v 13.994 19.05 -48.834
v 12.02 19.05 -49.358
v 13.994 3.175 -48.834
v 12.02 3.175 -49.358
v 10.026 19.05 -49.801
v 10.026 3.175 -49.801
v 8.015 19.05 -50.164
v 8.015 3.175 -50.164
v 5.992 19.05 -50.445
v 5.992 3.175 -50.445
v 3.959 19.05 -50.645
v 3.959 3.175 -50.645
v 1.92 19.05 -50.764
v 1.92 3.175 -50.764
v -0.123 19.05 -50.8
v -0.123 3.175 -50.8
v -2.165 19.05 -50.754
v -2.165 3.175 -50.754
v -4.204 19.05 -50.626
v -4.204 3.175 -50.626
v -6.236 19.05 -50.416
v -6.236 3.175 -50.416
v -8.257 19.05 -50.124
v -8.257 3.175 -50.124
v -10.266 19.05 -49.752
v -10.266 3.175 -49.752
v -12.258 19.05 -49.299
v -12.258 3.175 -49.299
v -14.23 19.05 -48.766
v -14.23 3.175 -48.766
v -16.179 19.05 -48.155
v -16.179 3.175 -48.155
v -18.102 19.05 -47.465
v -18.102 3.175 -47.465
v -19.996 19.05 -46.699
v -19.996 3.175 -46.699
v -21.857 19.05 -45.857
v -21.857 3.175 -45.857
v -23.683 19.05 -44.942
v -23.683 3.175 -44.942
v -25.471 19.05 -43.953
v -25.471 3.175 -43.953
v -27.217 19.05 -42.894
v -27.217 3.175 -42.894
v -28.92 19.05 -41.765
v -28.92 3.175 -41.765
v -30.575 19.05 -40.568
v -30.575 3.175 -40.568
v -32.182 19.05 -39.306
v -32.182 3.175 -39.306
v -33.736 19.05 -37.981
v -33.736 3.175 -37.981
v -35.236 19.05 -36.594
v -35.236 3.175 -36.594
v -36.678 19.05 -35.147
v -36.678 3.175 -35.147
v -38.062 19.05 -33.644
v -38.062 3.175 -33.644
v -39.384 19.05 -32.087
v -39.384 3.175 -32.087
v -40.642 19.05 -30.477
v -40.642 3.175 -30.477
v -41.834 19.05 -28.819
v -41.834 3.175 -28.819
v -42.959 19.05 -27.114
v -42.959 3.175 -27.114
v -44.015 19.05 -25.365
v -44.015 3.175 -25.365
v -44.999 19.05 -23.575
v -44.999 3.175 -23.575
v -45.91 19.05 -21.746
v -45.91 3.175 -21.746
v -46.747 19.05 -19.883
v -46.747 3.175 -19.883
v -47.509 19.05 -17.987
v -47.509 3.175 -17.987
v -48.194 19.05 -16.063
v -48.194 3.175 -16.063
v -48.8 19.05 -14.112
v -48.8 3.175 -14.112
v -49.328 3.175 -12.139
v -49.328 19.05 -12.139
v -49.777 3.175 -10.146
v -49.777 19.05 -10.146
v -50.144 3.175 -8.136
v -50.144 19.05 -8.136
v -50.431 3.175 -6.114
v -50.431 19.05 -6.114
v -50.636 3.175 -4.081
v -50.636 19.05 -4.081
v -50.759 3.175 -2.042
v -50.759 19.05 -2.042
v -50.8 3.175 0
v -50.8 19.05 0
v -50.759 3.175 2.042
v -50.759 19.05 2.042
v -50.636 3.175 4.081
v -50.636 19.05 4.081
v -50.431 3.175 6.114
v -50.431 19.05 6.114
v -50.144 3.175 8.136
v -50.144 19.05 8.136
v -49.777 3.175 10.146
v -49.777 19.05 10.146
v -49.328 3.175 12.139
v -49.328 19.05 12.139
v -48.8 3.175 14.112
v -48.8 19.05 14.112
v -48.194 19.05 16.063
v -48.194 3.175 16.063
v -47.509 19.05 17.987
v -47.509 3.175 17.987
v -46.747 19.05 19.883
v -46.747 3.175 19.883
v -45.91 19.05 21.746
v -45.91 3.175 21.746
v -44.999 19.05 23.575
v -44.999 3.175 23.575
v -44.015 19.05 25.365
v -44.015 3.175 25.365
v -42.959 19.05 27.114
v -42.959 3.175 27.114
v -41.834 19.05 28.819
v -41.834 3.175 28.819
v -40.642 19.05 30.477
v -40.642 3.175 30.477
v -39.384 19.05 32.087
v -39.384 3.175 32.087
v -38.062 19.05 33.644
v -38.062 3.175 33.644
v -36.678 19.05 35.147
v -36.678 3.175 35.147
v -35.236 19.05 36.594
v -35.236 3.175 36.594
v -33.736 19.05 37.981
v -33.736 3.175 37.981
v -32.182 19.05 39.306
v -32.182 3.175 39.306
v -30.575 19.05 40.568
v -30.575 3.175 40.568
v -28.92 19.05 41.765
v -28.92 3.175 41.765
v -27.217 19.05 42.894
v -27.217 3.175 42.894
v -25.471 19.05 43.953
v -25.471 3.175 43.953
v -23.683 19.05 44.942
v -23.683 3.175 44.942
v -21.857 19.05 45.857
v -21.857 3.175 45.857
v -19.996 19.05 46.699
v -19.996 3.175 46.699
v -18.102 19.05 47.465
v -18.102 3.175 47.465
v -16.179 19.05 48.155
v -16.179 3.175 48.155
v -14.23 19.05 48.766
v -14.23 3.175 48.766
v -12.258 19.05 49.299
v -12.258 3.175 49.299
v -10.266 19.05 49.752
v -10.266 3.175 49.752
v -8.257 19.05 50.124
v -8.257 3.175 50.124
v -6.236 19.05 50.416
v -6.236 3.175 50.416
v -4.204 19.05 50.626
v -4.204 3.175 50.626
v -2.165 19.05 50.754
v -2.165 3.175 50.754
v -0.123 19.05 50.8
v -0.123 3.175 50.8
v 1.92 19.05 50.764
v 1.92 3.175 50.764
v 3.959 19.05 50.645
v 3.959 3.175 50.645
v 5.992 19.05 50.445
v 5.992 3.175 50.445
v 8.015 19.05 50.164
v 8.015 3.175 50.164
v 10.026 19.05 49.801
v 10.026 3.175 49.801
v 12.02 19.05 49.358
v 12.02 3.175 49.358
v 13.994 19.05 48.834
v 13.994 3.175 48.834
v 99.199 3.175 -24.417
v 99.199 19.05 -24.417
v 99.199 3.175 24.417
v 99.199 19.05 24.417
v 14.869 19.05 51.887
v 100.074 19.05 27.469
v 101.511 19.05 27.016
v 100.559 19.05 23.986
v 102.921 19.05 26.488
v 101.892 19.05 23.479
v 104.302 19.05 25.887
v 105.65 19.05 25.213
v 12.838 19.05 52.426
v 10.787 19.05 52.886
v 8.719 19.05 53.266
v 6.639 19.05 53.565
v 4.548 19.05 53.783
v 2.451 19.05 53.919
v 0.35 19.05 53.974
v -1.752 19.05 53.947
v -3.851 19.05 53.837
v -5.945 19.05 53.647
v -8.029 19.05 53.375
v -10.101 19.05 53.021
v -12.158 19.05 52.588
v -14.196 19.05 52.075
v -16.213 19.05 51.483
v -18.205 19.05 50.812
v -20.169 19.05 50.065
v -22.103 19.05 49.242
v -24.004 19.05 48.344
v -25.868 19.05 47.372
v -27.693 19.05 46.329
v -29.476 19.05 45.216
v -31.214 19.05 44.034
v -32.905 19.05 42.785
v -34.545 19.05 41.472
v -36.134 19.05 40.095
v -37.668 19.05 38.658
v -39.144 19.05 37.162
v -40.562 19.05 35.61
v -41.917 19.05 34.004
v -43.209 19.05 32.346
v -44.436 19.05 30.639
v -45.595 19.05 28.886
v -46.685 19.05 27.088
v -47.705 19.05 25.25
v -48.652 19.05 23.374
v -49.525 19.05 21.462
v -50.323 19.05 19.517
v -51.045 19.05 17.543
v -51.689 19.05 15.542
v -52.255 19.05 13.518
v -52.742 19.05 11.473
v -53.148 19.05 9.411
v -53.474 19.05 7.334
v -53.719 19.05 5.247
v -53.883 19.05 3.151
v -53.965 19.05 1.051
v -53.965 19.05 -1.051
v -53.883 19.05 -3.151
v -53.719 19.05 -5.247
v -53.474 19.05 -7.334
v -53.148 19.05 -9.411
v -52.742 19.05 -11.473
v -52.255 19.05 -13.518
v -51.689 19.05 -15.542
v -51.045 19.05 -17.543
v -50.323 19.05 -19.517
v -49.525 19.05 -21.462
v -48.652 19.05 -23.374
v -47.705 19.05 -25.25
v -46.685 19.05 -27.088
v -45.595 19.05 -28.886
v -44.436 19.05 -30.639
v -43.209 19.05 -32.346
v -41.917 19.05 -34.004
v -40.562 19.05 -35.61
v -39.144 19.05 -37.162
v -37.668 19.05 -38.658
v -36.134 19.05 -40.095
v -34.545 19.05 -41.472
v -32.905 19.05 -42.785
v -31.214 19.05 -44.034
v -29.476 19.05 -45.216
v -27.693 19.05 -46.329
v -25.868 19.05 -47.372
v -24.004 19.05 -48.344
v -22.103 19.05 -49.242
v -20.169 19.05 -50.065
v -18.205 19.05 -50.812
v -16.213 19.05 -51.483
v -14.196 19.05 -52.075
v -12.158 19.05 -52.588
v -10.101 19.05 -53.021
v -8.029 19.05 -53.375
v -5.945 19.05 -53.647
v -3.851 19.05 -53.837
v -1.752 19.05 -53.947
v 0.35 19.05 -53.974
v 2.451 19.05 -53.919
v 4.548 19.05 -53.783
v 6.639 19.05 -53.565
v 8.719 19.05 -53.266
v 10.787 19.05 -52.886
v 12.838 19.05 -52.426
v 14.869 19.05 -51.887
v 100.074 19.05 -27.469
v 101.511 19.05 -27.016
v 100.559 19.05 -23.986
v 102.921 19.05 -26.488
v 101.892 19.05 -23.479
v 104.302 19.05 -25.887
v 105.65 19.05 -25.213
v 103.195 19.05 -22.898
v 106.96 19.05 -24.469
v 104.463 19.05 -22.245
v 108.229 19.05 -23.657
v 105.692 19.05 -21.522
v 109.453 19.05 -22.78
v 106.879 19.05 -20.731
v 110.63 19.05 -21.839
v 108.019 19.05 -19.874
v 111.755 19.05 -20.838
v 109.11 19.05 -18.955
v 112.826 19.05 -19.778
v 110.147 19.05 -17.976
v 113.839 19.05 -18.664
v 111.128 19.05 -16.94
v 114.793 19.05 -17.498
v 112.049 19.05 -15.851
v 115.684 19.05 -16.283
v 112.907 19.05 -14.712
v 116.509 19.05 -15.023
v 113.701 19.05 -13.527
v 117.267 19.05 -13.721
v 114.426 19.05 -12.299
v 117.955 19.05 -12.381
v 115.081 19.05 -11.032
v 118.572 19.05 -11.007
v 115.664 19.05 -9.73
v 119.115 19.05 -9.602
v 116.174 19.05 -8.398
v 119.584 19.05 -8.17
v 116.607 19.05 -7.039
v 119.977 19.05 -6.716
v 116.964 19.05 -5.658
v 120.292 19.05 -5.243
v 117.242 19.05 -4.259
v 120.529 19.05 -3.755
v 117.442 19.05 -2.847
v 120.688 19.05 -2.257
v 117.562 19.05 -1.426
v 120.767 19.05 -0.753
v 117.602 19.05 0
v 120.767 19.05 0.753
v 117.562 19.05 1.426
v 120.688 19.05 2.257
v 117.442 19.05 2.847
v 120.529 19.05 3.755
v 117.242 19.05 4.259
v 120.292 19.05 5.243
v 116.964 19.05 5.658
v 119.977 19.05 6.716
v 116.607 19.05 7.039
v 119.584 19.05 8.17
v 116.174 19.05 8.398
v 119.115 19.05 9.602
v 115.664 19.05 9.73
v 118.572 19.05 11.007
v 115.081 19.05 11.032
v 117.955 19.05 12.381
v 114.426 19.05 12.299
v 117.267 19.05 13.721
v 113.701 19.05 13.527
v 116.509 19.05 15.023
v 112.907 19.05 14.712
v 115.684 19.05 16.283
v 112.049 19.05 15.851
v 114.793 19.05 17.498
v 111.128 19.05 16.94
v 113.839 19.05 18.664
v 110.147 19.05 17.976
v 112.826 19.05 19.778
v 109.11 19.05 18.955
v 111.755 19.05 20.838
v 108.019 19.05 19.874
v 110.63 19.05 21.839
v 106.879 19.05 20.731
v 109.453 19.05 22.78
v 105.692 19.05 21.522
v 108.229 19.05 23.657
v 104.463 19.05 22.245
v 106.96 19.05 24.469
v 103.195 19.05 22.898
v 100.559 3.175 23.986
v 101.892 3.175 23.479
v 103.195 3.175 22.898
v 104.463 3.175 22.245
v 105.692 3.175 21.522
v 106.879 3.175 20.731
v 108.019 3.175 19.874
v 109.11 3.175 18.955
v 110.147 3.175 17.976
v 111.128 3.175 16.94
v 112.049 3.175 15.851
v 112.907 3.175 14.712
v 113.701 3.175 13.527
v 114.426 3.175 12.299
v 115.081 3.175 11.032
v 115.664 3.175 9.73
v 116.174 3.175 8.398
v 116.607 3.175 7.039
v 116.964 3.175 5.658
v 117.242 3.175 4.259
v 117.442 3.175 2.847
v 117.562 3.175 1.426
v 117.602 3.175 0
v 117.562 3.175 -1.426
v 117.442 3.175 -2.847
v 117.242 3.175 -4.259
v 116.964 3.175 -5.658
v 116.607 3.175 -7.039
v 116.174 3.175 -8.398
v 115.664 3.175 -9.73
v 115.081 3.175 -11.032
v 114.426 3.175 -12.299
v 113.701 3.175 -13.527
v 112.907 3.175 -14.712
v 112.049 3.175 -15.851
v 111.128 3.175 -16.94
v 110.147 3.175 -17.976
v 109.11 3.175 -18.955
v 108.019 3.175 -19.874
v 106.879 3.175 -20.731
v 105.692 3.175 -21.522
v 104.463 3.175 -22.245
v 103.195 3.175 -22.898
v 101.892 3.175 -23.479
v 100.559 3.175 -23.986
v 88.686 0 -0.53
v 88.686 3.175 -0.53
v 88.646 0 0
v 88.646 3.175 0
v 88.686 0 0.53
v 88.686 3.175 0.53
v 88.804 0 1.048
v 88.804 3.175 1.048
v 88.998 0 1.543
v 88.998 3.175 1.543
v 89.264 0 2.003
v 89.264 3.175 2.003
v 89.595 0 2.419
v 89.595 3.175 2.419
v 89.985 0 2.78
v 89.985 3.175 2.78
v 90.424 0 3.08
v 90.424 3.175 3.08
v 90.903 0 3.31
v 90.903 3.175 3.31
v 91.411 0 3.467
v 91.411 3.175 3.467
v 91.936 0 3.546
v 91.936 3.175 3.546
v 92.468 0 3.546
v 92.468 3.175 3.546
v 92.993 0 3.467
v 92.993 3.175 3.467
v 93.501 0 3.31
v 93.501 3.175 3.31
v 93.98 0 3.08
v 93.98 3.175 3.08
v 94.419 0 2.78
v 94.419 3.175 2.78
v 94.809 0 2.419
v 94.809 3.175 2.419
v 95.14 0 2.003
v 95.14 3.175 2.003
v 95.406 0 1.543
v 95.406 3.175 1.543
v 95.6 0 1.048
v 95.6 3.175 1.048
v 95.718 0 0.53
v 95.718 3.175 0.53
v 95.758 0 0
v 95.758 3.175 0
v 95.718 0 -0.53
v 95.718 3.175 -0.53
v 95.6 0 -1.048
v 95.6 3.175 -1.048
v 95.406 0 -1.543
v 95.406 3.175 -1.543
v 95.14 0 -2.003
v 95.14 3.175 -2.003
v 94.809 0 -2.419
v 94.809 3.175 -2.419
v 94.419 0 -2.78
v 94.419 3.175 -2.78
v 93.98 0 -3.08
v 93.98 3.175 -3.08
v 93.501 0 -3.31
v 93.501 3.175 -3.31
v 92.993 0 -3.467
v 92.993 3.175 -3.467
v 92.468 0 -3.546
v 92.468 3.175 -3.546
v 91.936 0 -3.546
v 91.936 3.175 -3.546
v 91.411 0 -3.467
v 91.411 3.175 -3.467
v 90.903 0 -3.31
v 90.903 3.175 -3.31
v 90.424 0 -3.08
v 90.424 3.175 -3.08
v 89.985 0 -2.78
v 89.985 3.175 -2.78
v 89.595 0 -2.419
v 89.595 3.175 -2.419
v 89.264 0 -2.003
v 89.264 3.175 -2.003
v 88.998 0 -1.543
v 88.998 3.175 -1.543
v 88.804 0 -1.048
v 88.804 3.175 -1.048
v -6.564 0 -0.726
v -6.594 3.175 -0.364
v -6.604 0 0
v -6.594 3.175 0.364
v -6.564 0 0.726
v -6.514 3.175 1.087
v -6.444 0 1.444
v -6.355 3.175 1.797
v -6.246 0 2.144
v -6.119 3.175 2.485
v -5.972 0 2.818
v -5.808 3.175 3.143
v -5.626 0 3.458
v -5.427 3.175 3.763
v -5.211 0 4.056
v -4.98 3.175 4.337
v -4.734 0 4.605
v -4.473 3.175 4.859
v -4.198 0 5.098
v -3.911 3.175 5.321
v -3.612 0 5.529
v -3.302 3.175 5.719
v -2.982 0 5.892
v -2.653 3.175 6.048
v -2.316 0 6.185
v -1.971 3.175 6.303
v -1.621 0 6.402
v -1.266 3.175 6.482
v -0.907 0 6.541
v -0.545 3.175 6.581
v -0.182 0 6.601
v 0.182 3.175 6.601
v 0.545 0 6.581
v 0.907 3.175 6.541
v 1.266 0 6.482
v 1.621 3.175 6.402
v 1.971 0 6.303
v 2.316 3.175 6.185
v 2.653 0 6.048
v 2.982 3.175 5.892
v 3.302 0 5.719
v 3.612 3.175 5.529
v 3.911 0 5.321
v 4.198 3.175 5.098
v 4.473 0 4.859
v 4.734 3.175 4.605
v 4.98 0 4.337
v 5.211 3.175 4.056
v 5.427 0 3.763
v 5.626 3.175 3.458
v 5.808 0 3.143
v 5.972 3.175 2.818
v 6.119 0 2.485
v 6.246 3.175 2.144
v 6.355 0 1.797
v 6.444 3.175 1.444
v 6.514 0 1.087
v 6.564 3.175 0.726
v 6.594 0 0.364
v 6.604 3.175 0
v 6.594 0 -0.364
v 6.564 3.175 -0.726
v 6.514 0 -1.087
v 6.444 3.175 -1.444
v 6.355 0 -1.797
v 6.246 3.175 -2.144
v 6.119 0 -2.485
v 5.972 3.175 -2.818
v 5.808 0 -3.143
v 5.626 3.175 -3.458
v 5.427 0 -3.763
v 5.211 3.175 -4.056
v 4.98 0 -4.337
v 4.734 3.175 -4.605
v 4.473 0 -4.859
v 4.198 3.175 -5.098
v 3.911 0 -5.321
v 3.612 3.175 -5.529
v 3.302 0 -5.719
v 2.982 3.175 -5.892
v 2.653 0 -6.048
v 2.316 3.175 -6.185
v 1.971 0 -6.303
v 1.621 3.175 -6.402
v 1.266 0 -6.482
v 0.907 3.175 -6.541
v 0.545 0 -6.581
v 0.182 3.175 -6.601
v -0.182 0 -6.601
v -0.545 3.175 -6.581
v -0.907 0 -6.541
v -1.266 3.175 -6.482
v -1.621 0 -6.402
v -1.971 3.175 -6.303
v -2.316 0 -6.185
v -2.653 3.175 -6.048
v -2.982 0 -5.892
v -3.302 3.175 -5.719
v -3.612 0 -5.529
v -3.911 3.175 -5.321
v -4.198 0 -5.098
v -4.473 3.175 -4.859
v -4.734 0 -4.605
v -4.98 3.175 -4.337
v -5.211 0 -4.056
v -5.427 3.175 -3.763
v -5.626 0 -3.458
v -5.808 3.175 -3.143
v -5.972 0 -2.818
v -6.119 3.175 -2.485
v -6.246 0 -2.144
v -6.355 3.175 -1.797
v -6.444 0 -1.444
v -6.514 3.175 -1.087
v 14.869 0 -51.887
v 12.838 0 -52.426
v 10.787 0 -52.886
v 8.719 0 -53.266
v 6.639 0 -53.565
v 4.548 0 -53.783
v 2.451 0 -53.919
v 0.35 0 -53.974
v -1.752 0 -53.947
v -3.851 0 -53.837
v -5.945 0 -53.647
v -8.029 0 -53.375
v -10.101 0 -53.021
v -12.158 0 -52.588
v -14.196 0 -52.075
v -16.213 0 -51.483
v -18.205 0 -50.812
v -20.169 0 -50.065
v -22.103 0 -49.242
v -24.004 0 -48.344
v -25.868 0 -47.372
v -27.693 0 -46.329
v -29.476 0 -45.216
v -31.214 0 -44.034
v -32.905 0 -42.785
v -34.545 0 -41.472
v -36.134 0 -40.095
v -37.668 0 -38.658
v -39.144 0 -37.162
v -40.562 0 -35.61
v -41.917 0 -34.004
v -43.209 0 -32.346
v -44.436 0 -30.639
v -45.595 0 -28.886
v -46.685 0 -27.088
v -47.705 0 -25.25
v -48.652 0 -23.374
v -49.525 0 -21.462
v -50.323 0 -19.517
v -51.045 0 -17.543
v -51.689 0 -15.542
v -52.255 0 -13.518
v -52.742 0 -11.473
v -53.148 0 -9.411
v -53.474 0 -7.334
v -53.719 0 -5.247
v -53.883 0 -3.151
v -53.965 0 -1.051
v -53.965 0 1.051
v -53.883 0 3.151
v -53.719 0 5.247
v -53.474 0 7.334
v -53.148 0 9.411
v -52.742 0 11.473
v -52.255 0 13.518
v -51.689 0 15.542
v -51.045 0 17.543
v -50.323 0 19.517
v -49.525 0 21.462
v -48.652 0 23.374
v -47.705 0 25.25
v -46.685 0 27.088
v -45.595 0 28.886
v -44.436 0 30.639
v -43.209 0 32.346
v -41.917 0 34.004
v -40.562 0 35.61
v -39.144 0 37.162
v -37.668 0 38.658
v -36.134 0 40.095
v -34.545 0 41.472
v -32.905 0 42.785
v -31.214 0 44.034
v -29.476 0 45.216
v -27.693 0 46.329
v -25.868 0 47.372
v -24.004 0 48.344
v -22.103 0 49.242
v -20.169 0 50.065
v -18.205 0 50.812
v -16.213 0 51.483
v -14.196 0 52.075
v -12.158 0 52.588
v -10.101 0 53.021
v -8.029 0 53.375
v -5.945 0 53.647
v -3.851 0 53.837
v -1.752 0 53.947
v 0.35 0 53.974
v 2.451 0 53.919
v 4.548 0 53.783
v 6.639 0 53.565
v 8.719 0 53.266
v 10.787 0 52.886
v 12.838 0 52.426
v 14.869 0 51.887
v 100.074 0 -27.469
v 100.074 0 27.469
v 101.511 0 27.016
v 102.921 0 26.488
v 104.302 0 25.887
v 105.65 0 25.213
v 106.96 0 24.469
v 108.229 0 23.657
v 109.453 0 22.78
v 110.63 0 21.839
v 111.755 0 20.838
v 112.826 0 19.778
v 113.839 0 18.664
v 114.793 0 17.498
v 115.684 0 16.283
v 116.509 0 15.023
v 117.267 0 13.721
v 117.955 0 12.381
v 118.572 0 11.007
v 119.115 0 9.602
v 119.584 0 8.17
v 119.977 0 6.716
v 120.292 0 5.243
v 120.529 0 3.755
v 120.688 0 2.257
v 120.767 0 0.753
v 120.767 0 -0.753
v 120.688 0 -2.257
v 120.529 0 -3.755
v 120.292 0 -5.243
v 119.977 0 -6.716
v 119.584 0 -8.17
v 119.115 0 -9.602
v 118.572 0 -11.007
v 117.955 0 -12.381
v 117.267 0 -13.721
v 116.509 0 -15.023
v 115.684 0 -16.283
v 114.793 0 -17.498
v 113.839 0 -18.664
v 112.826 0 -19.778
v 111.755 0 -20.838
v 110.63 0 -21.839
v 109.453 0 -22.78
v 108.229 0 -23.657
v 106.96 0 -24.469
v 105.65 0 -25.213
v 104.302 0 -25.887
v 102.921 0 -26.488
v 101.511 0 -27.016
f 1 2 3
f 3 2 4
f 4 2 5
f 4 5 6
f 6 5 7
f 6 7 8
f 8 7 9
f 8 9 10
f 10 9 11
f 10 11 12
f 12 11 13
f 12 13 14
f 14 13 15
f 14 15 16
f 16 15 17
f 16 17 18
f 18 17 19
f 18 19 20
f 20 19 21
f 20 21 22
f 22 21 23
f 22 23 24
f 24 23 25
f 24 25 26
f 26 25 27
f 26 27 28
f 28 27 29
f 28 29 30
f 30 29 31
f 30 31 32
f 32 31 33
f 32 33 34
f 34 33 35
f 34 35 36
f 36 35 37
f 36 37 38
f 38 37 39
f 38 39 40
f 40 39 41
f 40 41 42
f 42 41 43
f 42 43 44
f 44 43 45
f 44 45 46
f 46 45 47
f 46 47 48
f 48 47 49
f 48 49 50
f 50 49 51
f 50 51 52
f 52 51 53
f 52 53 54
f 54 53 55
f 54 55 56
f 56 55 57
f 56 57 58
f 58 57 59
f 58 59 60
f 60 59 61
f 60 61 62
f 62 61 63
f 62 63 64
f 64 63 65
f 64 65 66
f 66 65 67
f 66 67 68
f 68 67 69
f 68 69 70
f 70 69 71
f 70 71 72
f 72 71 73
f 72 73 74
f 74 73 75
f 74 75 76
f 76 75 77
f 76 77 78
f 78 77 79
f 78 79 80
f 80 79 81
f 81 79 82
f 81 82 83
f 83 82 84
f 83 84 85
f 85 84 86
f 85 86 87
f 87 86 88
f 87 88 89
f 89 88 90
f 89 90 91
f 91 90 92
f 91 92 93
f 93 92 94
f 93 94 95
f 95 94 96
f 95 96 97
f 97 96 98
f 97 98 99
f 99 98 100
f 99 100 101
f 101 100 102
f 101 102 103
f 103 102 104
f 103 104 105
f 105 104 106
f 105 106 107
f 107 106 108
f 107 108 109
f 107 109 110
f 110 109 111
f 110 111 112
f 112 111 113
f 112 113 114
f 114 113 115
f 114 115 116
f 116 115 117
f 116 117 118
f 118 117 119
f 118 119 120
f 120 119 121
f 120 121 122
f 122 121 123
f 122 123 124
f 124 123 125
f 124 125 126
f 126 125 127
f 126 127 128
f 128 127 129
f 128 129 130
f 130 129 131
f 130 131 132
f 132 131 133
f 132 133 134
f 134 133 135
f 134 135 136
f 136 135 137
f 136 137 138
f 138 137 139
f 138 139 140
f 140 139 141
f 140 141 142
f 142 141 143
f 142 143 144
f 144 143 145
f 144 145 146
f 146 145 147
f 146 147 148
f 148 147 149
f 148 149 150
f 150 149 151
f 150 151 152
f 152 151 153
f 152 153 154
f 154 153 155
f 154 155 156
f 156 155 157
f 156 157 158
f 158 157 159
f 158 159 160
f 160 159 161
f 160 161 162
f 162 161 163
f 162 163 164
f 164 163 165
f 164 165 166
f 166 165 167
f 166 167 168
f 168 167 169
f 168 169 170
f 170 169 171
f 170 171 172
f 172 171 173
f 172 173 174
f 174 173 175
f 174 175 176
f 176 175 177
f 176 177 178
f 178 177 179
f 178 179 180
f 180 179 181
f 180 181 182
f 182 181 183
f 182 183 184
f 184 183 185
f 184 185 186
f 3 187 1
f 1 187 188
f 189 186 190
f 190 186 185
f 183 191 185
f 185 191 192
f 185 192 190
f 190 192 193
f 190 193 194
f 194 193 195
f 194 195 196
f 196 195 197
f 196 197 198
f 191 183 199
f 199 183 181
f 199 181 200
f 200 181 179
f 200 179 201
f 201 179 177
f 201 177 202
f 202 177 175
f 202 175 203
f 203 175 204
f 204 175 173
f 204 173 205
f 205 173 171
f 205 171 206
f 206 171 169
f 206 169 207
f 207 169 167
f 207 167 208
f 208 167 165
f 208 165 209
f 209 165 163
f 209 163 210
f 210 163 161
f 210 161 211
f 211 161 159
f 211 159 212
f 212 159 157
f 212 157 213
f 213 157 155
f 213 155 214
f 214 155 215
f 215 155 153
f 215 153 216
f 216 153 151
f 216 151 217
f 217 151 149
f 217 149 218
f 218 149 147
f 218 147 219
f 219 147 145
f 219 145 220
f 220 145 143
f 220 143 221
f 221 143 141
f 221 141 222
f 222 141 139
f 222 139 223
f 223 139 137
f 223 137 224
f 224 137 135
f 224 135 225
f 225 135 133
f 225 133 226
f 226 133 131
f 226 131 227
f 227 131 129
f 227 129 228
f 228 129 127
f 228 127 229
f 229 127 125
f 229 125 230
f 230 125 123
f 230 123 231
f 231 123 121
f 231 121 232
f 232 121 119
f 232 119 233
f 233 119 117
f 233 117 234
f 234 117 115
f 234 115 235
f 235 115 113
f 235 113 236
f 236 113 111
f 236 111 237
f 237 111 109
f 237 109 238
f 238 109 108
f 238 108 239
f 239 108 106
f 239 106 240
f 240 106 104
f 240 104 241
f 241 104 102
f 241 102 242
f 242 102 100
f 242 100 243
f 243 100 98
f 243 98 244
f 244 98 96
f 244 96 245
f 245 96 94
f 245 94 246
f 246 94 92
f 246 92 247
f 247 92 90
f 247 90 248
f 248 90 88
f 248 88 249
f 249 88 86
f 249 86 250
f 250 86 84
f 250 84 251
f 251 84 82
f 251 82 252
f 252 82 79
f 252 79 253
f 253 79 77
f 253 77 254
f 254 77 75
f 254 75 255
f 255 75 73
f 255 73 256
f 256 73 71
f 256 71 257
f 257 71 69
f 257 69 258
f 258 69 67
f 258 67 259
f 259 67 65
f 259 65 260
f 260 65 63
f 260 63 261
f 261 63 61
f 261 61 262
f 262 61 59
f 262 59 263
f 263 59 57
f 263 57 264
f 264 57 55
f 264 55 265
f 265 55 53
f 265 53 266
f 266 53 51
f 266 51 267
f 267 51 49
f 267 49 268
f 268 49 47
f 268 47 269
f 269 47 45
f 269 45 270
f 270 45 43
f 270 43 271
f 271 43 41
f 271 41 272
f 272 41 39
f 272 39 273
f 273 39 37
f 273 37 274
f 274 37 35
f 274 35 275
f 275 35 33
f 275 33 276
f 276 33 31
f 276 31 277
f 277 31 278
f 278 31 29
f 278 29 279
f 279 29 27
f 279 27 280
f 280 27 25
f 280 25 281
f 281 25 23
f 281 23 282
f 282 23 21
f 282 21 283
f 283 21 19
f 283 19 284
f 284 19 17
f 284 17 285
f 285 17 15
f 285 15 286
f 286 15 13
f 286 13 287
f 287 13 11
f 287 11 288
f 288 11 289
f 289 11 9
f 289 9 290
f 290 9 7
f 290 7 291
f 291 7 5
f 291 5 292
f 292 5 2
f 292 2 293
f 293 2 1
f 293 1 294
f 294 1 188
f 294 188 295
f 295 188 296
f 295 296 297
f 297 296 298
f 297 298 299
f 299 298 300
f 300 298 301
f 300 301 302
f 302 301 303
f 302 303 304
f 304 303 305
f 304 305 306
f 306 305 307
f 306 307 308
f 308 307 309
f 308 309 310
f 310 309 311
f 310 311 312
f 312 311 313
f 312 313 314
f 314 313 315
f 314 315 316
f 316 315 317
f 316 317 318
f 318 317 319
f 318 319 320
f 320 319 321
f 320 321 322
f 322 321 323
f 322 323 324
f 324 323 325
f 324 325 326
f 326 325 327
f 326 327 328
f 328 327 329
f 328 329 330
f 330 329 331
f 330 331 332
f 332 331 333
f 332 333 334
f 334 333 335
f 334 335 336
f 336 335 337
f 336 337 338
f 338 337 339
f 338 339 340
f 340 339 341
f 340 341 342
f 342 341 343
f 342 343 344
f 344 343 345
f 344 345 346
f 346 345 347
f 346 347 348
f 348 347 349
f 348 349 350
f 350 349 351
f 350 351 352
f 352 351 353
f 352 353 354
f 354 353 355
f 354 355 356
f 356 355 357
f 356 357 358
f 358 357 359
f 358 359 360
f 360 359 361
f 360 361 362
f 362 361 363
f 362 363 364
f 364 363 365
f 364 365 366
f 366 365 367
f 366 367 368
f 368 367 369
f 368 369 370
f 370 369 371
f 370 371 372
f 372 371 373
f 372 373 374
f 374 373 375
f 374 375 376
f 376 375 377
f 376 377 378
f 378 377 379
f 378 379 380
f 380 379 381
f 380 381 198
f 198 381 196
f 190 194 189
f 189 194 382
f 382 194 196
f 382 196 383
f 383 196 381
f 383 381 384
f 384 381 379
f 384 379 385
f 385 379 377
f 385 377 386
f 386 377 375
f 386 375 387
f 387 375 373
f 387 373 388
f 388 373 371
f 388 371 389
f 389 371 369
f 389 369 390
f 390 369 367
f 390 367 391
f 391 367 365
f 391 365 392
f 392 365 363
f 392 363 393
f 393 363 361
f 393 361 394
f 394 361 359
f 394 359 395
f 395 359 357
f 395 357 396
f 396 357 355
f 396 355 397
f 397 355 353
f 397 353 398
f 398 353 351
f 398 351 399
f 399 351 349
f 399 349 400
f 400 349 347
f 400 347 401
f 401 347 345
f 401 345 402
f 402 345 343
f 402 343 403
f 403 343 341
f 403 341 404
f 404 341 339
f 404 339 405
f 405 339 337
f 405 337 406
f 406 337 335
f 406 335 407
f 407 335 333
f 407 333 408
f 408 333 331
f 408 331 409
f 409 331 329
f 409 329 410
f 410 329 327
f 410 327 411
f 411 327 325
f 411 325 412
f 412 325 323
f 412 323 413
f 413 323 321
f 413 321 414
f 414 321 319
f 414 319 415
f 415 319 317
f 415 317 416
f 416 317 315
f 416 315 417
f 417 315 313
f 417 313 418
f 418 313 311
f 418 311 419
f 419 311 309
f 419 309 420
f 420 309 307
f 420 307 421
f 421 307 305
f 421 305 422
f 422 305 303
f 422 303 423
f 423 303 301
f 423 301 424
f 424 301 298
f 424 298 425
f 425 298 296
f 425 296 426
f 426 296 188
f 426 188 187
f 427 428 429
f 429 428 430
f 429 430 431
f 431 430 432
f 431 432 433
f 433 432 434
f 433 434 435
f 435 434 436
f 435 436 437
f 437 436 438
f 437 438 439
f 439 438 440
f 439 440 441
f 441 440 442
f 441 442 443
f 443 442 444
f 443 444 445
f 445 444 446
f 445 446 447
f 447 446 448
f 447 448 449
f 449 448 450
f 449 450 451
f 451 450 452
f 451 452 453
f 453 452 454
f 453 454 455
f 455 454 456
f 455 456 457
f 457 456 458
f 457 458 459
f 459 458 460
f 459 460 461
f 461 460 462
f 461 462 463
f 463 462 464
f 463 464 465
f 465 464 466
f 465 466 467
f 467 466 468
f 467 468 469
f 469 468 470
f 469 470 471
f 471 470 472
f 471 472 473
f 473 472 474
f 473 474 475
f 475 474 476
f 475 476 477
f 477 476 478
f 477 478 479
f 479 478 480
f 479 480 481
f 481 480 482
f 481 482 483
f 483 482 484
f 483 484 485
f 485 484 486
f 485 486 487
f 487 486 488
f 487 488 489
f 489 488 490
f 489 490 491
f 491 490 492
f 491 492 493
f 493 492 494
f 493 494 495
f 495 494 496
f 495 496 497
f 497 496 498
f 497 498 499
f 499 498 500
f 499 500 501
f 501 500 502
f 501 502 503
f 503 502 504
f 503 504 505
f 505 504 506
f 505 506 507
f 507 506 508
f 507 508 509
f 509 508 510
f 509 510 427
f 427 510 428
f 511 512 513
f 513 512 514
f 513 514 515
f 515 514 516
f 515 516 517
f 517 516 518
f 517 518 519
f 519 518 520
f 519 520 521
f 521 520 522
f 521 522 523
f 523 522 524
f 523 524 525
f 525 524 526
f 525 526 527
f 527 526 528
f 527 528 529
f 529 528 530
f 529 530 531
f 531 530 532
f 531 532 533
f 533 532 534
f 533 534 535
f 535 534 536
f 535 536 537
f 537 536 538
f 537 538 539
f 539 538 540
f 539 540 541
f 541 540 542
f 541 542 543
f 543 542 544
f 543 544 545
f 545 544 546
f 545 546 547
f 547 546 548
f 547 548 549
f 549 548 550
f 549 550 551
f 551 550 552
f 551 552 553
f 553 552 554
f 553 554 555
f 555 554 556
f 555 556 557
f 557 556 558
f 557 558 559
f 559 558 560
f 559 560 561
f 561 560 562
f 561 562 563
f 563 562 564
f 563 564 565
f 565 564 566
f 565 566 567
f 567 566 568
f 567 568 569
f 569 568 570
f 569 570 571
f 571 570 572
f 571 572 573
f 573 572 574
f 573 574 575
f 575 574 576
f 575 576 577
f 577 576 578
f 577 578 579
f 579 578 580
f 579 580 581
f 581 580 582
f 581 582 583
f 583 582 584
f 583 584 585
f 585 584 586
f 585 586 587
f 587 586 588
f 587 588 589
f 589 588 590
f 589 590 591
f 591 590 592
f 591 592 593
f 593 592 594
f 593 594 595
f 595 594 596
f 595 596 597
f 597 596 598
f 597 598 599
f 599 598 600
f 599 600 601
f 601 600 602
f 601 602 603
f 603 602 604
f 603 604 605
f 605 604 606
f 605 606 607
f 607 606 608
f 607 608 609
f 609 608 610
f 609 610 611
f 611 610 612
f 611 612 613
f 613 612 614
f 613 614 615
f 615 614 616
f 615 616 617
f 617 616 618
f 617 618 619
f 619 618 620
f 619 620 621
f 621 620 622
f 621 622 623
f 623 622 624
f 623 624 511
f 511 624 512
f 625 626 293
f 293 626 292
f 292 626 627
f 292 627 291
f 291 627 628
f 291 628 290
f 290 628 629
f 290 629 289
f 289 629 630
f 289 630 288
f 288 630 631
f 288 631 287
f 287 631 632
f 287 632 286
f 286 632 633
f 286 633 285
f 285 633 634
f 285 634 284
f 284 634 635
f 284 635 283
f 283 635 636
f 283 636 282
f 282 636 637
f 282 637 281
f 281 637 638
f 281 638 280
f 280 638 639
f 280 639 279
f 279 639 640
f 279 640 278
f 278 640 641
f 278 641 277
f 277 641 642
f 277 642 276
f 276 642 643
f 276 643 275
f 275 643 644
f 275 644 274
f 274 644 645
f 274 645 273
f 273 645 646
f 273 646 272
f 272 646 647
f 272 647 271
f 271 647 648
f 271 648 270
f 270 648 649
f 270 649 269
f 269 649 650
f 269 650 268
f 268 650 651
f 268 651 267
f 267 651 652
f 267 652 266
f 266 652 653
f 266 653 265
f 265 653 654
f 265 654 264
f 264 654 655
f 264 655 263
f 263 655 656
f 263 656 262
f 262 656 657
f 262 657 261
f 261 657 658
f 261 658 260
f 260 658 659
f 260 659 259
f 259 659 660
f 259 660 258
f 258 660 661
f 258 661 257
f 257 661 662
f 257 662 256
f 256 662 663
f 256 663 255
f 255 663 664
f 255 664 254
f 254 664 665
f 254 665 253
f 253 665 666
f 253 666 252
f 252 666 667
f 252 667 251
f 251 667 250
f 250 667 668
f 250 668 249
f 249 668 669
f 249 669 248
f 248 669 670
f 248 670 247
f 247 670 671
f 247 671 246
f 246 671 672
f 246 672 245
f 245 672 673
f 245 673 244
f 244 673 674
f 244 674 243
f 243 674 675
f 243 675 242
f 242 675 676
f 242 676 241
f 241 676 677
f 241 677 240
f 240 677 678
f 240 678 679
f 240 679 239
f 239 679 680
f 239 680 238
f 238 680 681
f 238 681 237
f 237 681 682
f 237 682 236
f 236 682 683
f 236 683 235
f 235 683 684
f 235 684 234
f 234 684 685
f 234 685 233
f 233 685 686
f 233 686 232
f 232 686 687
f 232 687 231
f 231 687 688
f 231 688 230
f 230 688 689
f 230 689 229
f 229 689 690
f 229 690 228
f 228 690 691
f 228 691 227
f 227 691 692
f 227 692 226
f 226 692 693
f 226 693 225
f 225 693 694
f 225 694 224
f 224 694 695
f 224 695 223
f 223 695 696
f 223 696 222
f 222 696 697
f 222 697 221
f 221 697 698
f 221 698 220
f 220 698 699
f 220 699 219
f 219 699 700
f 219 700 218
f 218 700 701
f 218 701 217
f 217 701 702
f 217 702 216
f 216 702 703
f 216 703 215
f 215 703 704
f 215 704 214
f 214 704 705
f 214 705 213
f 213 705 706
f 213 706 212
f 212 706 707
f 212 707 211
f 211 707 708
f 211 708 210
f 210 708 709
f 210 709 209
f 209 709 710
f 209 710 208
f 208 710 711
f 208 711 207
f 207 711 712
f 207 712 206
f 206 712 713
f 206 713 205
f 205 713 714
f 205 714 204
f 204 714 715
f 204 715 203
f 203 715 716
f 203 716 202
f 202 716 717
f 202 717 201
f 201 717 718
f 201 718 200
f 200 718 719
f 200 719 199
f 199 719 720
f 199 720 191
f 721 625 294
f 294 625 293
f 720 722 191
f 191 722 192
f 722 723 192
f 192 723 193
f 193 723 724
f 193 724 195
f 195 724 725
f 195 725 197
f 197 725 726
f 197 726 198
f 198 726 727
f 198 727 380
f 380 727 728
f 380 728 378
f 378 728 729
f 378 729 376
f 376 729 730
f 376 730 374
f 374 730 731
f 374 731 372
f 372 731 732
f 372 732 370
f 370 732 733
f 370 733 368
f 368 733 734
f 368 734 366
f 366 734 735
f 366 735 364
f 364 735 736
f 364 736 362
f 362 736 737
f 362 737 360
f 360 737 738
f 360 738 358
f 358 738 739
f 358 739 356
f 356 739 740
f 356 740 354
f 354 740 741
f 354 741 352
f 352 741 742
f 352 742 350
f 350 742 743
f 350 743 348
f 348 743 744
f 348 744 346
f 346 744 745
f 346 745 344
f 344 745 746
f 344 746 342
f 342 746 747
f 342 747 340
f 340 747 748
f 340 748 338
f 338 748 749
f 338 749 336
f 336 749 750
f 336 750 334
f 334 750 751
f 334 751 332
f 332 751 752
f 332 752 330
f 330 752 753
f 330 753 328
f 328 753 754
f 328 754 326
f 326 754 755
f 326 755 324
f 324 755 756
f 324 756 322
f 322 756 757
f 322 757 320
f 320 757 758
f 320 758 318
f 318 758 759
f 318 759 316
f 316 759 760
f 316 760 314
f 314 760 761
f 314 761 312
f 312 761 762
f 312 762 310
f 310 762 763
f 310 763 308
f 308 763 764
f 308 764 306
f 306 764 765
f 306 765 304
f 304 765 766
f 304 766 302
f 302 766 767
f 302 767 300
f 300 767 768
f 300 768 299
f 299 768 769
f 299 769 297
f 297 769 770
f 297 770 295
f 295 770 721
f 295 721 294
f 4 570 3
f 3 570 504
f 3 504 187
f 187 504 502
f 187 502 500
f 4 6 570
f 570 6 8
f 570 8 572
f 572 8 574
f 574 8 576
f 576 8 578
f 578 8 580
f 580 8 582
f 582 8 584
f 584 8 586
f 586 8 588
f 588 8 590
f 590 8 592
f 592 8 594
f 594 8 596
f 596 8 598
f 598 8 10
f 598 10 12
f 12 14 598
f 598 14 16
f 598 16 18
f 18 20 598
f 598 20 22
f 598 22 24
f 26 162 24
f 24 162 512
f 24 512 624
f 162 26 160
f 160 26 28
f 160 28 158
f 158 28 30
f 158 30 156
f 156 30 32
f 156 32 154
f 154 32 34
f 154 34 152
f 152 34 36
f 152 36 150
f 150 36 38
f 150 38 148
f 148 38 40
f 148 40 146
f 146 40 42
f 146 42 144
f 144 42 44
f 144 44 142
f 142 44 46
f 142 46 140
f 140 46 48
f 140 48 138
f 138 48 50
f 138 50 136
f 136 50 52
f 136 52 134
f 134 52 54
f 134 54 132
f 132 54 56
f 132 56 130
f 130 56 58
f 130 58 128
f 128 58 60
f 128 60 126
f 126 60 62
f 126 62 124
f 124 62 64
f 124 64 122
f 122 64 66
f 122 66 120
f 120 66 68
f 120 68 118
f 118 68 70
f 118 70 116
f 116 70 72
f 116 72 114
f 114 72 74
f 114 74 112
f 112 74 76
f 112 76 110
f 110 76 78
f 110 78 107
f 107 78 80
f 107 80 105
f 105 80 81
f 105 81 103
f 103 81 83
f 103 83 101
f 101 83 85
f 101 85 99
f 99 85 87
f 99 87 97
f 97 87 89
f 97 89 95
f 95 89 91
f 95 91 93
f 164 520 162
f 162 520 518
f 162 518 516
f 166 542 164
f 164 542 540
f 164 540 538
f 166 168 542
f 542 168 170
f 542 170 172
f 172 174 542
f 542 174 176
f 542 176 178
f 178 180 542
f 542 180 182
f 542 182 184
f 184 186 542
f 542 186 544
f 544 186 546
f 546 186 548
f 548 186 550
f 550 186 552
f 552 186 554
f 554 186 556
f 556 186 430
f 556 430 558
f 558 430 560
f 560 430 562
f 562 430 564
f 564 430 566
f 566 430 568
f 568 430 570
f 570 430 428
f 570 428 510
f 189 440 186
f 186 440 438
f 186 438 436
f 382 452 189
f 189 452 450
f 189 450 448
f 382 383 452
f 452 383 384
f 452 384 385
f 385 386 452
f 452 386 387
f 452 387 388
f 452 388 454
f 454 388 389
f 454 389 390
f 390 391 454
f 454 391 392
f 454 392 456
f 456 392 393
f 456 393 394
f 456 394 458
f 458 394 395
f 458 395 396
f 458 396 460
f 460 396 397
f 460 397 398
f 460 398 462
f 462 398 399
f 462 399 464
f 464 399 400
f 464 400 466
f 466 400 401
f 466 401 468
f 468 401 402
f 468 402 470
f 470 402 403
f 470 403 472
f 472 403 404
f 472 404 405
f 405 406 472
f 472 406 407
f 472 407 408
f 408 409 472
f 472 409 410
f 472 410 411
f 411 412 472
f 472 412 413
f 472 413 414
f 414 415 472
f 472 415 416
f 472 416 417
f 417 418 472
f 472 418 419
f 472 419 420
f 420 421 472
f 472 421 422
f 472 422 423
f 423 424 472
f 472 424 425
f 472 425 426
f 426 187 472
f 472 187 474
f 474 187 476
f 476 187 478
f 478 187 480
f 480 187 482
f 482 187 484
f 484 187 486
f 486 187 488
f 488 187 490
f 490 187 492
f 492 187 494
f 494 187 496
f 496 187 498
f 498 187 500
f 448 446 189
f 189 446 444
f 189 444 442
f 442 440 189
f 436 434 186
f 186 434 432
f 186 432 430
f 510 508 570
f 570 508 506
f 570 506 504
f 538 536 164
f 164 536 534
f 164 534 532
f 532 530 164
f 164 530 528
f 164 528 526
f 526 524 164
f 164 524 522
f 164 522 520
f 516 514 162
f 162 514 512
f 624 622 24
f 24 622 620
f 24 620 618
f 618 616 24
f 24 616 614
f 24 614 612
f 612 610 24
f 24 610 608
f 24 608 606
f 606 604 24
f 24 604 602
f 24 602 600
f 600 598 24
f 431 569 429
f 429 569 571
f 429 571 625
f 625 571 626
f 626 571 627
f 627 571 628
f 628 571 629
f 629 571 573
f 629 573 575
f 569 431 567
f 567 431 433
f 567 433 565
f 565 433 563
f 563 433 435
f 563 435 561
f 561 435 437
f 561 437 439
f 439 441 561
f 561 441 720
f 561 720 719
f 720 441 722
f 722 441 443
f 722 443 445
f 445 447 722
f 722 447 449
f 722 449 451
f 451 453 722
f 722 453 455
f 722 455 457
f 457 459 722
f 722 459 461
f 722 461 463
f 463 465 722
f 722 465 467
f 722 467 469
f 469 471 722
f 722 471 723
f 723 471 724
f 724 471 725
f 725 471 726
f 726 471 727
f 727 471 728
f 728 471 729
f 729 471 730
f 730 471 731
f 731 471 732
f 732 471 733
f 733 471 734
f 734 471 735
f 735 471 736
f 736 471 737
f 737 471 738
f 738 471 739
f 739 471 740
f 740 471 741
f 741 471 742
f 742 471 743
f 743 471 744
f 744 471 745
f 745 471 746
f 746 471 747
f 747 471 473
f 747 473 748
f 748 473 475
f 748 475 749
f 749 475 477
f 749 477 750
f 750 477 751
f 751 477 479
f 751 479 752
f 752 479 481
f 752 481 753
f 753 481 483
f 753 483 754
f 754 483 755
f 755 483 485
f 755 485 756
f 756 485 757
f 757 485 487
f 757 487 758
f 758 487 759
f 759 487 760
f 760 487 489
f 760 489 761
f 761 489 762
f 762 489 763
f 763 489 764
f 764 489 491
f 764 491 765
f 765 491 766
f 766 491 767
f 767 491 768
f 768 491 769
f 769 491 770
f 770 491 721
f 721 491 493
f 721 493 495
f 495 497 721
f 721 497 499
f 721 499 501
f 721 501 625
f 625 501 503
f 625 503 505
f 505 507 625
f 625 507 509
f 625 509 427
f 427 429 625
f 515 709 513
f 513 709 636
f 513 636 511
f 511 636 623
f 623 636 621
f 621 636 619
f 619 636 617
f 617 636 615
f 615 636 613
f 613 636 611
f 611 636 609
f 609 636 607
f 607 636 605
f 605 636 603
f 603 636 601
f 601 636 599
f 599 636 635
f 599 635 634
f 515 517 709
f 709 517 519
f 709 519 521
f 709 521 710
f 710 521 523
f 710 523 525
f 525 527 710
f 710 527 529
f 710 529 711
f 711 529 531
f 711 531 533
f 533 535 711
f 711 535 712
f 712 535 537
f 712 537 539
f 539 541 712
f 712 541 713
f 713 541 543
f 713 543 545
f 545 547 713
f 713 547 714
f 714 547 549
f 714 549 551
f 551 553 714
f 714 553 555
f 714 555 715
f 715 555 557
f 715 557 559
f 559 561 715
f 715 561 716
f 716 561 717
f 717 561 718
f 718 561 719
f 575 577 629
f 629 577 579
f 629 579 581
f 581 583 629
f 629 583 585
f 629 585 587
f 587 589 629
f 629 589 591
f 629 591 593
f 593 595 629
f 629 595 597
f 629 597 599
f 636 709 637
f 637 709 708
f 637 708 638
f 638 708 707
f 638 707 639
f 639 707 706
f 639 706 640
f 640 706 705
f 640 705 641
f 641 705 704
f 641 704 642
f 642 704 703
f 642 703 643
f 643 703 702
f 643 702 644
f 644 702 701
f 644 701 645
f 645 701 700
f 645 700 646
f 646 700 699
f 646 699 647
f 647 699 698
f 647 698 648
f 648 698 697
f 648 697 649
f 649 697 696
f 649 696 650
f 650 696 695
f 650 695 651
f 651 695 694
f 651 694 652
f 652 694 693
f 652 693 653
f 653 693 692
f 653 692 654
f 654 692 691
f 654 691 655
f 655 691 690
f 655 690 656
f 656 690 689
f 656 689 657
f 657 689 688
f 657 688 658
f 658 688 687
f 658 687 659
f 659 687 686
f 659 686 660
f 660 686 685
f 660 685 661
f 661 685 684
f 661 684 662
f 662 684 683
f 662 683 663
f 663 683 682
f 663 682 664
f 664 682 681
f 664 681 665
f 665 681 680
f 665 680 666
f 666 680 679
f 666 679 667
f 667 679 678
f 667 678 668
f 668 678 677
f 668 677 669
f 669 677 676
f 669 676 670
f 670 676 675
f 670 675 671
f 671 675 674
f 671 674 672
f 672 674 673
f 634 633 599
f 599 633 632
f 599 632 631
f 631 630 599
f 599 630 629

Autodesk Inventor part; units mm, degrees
ref_plane "YZ Plane" through (0, 0, 0) normal (1, 0, 0) x (0, 1, 0)
ref_plane "XZ Plane" through (0, 0, 0) normal (0, 1, 0) x (-1, 0, 0)
ref_plane "XY Plane" through (0, 0, 0) normal (0, 0, 1) x (1, 0, 0)
sketch "Sketch1" plane through (0, 0, 0) normal (0, 1, 0) x (-1, 0, 0)
  circle A0 centre (0, 0) radius 53.975
  circle A1 centre (-92.202, 0) radius 28.575
  line L0 (-14.8691, 51.8865) -> (-100.0739, 27.4693)
  line L1 (-100.0739, -27.4693) -> (-14.8691, -51.8865)
  dimension "d0" = 107.95
  dimension "d1" = 57.15
  dimension "d2" = 92.202
  dimension "d3" = 0
extrude "Extrusion1" add sketch "Sketch1" along normal blind 3.175
sketch "Sketch3" plane through (0, 3.175, 0) normal (0, 1, 0) x (1, 0, 0)
  point P0 (0, 0)
  point P1 (0, 0)
sketch "Sketch4" plane through (0, 3.175, 0) normal (0, 1, 0) x (1, 0, 0)
  arc A0 (100.0739, -27.4693) -> (100.0739, 27.4693) centre (92.202, 0) ccw projected
  point P0 (0, 0)
hole "Hole1" at (0, 3.175, 0) direction (0, -1, 0) diameter 13.208 end through all
hole "Hole2" at (92.202, 3.175, 0) direction (0, -1, 0) diameter 7.112 end through all
sketch "Sketch5" plane through (0, 3.175, 0) normal (0, 1, 0) x (1, 0, 0)
  circle A0 centre (0, 0) radius 50.8
  circle A1 centre (92.202, 0) radius 3.556 projected
  circle A2 centre (92.202, 0) radius 25.4
  line L0 (13.9945, -48.8344) -> (99.1992, -24.4172)
  line L1 (13.9945, 48.8344) -> (99.1992, 24.4172)
  line L2 (14.8691, -51.8865) -> (100.0739, -27.4693) projected
  arc A3 (14.8691, 51.8865) -> (14.8691, -51.8865) centre (0, 0) ccw projected
  line L3 (100.0739, 27.4693) -> (14.8691, 51.8865) projected
  arc A4 (100.0739, -27.4693) -> (100.0739, 27.4693) centre (92.202, 0) ccw projected
  dimension "d20" = 101.6
  dimension "d21" = 50.8
extrude "Extrusion2" add sketch "Sketch5" along normal blind 15.875 contours A3 L3 A4 L2
properties part number "chain guard"
